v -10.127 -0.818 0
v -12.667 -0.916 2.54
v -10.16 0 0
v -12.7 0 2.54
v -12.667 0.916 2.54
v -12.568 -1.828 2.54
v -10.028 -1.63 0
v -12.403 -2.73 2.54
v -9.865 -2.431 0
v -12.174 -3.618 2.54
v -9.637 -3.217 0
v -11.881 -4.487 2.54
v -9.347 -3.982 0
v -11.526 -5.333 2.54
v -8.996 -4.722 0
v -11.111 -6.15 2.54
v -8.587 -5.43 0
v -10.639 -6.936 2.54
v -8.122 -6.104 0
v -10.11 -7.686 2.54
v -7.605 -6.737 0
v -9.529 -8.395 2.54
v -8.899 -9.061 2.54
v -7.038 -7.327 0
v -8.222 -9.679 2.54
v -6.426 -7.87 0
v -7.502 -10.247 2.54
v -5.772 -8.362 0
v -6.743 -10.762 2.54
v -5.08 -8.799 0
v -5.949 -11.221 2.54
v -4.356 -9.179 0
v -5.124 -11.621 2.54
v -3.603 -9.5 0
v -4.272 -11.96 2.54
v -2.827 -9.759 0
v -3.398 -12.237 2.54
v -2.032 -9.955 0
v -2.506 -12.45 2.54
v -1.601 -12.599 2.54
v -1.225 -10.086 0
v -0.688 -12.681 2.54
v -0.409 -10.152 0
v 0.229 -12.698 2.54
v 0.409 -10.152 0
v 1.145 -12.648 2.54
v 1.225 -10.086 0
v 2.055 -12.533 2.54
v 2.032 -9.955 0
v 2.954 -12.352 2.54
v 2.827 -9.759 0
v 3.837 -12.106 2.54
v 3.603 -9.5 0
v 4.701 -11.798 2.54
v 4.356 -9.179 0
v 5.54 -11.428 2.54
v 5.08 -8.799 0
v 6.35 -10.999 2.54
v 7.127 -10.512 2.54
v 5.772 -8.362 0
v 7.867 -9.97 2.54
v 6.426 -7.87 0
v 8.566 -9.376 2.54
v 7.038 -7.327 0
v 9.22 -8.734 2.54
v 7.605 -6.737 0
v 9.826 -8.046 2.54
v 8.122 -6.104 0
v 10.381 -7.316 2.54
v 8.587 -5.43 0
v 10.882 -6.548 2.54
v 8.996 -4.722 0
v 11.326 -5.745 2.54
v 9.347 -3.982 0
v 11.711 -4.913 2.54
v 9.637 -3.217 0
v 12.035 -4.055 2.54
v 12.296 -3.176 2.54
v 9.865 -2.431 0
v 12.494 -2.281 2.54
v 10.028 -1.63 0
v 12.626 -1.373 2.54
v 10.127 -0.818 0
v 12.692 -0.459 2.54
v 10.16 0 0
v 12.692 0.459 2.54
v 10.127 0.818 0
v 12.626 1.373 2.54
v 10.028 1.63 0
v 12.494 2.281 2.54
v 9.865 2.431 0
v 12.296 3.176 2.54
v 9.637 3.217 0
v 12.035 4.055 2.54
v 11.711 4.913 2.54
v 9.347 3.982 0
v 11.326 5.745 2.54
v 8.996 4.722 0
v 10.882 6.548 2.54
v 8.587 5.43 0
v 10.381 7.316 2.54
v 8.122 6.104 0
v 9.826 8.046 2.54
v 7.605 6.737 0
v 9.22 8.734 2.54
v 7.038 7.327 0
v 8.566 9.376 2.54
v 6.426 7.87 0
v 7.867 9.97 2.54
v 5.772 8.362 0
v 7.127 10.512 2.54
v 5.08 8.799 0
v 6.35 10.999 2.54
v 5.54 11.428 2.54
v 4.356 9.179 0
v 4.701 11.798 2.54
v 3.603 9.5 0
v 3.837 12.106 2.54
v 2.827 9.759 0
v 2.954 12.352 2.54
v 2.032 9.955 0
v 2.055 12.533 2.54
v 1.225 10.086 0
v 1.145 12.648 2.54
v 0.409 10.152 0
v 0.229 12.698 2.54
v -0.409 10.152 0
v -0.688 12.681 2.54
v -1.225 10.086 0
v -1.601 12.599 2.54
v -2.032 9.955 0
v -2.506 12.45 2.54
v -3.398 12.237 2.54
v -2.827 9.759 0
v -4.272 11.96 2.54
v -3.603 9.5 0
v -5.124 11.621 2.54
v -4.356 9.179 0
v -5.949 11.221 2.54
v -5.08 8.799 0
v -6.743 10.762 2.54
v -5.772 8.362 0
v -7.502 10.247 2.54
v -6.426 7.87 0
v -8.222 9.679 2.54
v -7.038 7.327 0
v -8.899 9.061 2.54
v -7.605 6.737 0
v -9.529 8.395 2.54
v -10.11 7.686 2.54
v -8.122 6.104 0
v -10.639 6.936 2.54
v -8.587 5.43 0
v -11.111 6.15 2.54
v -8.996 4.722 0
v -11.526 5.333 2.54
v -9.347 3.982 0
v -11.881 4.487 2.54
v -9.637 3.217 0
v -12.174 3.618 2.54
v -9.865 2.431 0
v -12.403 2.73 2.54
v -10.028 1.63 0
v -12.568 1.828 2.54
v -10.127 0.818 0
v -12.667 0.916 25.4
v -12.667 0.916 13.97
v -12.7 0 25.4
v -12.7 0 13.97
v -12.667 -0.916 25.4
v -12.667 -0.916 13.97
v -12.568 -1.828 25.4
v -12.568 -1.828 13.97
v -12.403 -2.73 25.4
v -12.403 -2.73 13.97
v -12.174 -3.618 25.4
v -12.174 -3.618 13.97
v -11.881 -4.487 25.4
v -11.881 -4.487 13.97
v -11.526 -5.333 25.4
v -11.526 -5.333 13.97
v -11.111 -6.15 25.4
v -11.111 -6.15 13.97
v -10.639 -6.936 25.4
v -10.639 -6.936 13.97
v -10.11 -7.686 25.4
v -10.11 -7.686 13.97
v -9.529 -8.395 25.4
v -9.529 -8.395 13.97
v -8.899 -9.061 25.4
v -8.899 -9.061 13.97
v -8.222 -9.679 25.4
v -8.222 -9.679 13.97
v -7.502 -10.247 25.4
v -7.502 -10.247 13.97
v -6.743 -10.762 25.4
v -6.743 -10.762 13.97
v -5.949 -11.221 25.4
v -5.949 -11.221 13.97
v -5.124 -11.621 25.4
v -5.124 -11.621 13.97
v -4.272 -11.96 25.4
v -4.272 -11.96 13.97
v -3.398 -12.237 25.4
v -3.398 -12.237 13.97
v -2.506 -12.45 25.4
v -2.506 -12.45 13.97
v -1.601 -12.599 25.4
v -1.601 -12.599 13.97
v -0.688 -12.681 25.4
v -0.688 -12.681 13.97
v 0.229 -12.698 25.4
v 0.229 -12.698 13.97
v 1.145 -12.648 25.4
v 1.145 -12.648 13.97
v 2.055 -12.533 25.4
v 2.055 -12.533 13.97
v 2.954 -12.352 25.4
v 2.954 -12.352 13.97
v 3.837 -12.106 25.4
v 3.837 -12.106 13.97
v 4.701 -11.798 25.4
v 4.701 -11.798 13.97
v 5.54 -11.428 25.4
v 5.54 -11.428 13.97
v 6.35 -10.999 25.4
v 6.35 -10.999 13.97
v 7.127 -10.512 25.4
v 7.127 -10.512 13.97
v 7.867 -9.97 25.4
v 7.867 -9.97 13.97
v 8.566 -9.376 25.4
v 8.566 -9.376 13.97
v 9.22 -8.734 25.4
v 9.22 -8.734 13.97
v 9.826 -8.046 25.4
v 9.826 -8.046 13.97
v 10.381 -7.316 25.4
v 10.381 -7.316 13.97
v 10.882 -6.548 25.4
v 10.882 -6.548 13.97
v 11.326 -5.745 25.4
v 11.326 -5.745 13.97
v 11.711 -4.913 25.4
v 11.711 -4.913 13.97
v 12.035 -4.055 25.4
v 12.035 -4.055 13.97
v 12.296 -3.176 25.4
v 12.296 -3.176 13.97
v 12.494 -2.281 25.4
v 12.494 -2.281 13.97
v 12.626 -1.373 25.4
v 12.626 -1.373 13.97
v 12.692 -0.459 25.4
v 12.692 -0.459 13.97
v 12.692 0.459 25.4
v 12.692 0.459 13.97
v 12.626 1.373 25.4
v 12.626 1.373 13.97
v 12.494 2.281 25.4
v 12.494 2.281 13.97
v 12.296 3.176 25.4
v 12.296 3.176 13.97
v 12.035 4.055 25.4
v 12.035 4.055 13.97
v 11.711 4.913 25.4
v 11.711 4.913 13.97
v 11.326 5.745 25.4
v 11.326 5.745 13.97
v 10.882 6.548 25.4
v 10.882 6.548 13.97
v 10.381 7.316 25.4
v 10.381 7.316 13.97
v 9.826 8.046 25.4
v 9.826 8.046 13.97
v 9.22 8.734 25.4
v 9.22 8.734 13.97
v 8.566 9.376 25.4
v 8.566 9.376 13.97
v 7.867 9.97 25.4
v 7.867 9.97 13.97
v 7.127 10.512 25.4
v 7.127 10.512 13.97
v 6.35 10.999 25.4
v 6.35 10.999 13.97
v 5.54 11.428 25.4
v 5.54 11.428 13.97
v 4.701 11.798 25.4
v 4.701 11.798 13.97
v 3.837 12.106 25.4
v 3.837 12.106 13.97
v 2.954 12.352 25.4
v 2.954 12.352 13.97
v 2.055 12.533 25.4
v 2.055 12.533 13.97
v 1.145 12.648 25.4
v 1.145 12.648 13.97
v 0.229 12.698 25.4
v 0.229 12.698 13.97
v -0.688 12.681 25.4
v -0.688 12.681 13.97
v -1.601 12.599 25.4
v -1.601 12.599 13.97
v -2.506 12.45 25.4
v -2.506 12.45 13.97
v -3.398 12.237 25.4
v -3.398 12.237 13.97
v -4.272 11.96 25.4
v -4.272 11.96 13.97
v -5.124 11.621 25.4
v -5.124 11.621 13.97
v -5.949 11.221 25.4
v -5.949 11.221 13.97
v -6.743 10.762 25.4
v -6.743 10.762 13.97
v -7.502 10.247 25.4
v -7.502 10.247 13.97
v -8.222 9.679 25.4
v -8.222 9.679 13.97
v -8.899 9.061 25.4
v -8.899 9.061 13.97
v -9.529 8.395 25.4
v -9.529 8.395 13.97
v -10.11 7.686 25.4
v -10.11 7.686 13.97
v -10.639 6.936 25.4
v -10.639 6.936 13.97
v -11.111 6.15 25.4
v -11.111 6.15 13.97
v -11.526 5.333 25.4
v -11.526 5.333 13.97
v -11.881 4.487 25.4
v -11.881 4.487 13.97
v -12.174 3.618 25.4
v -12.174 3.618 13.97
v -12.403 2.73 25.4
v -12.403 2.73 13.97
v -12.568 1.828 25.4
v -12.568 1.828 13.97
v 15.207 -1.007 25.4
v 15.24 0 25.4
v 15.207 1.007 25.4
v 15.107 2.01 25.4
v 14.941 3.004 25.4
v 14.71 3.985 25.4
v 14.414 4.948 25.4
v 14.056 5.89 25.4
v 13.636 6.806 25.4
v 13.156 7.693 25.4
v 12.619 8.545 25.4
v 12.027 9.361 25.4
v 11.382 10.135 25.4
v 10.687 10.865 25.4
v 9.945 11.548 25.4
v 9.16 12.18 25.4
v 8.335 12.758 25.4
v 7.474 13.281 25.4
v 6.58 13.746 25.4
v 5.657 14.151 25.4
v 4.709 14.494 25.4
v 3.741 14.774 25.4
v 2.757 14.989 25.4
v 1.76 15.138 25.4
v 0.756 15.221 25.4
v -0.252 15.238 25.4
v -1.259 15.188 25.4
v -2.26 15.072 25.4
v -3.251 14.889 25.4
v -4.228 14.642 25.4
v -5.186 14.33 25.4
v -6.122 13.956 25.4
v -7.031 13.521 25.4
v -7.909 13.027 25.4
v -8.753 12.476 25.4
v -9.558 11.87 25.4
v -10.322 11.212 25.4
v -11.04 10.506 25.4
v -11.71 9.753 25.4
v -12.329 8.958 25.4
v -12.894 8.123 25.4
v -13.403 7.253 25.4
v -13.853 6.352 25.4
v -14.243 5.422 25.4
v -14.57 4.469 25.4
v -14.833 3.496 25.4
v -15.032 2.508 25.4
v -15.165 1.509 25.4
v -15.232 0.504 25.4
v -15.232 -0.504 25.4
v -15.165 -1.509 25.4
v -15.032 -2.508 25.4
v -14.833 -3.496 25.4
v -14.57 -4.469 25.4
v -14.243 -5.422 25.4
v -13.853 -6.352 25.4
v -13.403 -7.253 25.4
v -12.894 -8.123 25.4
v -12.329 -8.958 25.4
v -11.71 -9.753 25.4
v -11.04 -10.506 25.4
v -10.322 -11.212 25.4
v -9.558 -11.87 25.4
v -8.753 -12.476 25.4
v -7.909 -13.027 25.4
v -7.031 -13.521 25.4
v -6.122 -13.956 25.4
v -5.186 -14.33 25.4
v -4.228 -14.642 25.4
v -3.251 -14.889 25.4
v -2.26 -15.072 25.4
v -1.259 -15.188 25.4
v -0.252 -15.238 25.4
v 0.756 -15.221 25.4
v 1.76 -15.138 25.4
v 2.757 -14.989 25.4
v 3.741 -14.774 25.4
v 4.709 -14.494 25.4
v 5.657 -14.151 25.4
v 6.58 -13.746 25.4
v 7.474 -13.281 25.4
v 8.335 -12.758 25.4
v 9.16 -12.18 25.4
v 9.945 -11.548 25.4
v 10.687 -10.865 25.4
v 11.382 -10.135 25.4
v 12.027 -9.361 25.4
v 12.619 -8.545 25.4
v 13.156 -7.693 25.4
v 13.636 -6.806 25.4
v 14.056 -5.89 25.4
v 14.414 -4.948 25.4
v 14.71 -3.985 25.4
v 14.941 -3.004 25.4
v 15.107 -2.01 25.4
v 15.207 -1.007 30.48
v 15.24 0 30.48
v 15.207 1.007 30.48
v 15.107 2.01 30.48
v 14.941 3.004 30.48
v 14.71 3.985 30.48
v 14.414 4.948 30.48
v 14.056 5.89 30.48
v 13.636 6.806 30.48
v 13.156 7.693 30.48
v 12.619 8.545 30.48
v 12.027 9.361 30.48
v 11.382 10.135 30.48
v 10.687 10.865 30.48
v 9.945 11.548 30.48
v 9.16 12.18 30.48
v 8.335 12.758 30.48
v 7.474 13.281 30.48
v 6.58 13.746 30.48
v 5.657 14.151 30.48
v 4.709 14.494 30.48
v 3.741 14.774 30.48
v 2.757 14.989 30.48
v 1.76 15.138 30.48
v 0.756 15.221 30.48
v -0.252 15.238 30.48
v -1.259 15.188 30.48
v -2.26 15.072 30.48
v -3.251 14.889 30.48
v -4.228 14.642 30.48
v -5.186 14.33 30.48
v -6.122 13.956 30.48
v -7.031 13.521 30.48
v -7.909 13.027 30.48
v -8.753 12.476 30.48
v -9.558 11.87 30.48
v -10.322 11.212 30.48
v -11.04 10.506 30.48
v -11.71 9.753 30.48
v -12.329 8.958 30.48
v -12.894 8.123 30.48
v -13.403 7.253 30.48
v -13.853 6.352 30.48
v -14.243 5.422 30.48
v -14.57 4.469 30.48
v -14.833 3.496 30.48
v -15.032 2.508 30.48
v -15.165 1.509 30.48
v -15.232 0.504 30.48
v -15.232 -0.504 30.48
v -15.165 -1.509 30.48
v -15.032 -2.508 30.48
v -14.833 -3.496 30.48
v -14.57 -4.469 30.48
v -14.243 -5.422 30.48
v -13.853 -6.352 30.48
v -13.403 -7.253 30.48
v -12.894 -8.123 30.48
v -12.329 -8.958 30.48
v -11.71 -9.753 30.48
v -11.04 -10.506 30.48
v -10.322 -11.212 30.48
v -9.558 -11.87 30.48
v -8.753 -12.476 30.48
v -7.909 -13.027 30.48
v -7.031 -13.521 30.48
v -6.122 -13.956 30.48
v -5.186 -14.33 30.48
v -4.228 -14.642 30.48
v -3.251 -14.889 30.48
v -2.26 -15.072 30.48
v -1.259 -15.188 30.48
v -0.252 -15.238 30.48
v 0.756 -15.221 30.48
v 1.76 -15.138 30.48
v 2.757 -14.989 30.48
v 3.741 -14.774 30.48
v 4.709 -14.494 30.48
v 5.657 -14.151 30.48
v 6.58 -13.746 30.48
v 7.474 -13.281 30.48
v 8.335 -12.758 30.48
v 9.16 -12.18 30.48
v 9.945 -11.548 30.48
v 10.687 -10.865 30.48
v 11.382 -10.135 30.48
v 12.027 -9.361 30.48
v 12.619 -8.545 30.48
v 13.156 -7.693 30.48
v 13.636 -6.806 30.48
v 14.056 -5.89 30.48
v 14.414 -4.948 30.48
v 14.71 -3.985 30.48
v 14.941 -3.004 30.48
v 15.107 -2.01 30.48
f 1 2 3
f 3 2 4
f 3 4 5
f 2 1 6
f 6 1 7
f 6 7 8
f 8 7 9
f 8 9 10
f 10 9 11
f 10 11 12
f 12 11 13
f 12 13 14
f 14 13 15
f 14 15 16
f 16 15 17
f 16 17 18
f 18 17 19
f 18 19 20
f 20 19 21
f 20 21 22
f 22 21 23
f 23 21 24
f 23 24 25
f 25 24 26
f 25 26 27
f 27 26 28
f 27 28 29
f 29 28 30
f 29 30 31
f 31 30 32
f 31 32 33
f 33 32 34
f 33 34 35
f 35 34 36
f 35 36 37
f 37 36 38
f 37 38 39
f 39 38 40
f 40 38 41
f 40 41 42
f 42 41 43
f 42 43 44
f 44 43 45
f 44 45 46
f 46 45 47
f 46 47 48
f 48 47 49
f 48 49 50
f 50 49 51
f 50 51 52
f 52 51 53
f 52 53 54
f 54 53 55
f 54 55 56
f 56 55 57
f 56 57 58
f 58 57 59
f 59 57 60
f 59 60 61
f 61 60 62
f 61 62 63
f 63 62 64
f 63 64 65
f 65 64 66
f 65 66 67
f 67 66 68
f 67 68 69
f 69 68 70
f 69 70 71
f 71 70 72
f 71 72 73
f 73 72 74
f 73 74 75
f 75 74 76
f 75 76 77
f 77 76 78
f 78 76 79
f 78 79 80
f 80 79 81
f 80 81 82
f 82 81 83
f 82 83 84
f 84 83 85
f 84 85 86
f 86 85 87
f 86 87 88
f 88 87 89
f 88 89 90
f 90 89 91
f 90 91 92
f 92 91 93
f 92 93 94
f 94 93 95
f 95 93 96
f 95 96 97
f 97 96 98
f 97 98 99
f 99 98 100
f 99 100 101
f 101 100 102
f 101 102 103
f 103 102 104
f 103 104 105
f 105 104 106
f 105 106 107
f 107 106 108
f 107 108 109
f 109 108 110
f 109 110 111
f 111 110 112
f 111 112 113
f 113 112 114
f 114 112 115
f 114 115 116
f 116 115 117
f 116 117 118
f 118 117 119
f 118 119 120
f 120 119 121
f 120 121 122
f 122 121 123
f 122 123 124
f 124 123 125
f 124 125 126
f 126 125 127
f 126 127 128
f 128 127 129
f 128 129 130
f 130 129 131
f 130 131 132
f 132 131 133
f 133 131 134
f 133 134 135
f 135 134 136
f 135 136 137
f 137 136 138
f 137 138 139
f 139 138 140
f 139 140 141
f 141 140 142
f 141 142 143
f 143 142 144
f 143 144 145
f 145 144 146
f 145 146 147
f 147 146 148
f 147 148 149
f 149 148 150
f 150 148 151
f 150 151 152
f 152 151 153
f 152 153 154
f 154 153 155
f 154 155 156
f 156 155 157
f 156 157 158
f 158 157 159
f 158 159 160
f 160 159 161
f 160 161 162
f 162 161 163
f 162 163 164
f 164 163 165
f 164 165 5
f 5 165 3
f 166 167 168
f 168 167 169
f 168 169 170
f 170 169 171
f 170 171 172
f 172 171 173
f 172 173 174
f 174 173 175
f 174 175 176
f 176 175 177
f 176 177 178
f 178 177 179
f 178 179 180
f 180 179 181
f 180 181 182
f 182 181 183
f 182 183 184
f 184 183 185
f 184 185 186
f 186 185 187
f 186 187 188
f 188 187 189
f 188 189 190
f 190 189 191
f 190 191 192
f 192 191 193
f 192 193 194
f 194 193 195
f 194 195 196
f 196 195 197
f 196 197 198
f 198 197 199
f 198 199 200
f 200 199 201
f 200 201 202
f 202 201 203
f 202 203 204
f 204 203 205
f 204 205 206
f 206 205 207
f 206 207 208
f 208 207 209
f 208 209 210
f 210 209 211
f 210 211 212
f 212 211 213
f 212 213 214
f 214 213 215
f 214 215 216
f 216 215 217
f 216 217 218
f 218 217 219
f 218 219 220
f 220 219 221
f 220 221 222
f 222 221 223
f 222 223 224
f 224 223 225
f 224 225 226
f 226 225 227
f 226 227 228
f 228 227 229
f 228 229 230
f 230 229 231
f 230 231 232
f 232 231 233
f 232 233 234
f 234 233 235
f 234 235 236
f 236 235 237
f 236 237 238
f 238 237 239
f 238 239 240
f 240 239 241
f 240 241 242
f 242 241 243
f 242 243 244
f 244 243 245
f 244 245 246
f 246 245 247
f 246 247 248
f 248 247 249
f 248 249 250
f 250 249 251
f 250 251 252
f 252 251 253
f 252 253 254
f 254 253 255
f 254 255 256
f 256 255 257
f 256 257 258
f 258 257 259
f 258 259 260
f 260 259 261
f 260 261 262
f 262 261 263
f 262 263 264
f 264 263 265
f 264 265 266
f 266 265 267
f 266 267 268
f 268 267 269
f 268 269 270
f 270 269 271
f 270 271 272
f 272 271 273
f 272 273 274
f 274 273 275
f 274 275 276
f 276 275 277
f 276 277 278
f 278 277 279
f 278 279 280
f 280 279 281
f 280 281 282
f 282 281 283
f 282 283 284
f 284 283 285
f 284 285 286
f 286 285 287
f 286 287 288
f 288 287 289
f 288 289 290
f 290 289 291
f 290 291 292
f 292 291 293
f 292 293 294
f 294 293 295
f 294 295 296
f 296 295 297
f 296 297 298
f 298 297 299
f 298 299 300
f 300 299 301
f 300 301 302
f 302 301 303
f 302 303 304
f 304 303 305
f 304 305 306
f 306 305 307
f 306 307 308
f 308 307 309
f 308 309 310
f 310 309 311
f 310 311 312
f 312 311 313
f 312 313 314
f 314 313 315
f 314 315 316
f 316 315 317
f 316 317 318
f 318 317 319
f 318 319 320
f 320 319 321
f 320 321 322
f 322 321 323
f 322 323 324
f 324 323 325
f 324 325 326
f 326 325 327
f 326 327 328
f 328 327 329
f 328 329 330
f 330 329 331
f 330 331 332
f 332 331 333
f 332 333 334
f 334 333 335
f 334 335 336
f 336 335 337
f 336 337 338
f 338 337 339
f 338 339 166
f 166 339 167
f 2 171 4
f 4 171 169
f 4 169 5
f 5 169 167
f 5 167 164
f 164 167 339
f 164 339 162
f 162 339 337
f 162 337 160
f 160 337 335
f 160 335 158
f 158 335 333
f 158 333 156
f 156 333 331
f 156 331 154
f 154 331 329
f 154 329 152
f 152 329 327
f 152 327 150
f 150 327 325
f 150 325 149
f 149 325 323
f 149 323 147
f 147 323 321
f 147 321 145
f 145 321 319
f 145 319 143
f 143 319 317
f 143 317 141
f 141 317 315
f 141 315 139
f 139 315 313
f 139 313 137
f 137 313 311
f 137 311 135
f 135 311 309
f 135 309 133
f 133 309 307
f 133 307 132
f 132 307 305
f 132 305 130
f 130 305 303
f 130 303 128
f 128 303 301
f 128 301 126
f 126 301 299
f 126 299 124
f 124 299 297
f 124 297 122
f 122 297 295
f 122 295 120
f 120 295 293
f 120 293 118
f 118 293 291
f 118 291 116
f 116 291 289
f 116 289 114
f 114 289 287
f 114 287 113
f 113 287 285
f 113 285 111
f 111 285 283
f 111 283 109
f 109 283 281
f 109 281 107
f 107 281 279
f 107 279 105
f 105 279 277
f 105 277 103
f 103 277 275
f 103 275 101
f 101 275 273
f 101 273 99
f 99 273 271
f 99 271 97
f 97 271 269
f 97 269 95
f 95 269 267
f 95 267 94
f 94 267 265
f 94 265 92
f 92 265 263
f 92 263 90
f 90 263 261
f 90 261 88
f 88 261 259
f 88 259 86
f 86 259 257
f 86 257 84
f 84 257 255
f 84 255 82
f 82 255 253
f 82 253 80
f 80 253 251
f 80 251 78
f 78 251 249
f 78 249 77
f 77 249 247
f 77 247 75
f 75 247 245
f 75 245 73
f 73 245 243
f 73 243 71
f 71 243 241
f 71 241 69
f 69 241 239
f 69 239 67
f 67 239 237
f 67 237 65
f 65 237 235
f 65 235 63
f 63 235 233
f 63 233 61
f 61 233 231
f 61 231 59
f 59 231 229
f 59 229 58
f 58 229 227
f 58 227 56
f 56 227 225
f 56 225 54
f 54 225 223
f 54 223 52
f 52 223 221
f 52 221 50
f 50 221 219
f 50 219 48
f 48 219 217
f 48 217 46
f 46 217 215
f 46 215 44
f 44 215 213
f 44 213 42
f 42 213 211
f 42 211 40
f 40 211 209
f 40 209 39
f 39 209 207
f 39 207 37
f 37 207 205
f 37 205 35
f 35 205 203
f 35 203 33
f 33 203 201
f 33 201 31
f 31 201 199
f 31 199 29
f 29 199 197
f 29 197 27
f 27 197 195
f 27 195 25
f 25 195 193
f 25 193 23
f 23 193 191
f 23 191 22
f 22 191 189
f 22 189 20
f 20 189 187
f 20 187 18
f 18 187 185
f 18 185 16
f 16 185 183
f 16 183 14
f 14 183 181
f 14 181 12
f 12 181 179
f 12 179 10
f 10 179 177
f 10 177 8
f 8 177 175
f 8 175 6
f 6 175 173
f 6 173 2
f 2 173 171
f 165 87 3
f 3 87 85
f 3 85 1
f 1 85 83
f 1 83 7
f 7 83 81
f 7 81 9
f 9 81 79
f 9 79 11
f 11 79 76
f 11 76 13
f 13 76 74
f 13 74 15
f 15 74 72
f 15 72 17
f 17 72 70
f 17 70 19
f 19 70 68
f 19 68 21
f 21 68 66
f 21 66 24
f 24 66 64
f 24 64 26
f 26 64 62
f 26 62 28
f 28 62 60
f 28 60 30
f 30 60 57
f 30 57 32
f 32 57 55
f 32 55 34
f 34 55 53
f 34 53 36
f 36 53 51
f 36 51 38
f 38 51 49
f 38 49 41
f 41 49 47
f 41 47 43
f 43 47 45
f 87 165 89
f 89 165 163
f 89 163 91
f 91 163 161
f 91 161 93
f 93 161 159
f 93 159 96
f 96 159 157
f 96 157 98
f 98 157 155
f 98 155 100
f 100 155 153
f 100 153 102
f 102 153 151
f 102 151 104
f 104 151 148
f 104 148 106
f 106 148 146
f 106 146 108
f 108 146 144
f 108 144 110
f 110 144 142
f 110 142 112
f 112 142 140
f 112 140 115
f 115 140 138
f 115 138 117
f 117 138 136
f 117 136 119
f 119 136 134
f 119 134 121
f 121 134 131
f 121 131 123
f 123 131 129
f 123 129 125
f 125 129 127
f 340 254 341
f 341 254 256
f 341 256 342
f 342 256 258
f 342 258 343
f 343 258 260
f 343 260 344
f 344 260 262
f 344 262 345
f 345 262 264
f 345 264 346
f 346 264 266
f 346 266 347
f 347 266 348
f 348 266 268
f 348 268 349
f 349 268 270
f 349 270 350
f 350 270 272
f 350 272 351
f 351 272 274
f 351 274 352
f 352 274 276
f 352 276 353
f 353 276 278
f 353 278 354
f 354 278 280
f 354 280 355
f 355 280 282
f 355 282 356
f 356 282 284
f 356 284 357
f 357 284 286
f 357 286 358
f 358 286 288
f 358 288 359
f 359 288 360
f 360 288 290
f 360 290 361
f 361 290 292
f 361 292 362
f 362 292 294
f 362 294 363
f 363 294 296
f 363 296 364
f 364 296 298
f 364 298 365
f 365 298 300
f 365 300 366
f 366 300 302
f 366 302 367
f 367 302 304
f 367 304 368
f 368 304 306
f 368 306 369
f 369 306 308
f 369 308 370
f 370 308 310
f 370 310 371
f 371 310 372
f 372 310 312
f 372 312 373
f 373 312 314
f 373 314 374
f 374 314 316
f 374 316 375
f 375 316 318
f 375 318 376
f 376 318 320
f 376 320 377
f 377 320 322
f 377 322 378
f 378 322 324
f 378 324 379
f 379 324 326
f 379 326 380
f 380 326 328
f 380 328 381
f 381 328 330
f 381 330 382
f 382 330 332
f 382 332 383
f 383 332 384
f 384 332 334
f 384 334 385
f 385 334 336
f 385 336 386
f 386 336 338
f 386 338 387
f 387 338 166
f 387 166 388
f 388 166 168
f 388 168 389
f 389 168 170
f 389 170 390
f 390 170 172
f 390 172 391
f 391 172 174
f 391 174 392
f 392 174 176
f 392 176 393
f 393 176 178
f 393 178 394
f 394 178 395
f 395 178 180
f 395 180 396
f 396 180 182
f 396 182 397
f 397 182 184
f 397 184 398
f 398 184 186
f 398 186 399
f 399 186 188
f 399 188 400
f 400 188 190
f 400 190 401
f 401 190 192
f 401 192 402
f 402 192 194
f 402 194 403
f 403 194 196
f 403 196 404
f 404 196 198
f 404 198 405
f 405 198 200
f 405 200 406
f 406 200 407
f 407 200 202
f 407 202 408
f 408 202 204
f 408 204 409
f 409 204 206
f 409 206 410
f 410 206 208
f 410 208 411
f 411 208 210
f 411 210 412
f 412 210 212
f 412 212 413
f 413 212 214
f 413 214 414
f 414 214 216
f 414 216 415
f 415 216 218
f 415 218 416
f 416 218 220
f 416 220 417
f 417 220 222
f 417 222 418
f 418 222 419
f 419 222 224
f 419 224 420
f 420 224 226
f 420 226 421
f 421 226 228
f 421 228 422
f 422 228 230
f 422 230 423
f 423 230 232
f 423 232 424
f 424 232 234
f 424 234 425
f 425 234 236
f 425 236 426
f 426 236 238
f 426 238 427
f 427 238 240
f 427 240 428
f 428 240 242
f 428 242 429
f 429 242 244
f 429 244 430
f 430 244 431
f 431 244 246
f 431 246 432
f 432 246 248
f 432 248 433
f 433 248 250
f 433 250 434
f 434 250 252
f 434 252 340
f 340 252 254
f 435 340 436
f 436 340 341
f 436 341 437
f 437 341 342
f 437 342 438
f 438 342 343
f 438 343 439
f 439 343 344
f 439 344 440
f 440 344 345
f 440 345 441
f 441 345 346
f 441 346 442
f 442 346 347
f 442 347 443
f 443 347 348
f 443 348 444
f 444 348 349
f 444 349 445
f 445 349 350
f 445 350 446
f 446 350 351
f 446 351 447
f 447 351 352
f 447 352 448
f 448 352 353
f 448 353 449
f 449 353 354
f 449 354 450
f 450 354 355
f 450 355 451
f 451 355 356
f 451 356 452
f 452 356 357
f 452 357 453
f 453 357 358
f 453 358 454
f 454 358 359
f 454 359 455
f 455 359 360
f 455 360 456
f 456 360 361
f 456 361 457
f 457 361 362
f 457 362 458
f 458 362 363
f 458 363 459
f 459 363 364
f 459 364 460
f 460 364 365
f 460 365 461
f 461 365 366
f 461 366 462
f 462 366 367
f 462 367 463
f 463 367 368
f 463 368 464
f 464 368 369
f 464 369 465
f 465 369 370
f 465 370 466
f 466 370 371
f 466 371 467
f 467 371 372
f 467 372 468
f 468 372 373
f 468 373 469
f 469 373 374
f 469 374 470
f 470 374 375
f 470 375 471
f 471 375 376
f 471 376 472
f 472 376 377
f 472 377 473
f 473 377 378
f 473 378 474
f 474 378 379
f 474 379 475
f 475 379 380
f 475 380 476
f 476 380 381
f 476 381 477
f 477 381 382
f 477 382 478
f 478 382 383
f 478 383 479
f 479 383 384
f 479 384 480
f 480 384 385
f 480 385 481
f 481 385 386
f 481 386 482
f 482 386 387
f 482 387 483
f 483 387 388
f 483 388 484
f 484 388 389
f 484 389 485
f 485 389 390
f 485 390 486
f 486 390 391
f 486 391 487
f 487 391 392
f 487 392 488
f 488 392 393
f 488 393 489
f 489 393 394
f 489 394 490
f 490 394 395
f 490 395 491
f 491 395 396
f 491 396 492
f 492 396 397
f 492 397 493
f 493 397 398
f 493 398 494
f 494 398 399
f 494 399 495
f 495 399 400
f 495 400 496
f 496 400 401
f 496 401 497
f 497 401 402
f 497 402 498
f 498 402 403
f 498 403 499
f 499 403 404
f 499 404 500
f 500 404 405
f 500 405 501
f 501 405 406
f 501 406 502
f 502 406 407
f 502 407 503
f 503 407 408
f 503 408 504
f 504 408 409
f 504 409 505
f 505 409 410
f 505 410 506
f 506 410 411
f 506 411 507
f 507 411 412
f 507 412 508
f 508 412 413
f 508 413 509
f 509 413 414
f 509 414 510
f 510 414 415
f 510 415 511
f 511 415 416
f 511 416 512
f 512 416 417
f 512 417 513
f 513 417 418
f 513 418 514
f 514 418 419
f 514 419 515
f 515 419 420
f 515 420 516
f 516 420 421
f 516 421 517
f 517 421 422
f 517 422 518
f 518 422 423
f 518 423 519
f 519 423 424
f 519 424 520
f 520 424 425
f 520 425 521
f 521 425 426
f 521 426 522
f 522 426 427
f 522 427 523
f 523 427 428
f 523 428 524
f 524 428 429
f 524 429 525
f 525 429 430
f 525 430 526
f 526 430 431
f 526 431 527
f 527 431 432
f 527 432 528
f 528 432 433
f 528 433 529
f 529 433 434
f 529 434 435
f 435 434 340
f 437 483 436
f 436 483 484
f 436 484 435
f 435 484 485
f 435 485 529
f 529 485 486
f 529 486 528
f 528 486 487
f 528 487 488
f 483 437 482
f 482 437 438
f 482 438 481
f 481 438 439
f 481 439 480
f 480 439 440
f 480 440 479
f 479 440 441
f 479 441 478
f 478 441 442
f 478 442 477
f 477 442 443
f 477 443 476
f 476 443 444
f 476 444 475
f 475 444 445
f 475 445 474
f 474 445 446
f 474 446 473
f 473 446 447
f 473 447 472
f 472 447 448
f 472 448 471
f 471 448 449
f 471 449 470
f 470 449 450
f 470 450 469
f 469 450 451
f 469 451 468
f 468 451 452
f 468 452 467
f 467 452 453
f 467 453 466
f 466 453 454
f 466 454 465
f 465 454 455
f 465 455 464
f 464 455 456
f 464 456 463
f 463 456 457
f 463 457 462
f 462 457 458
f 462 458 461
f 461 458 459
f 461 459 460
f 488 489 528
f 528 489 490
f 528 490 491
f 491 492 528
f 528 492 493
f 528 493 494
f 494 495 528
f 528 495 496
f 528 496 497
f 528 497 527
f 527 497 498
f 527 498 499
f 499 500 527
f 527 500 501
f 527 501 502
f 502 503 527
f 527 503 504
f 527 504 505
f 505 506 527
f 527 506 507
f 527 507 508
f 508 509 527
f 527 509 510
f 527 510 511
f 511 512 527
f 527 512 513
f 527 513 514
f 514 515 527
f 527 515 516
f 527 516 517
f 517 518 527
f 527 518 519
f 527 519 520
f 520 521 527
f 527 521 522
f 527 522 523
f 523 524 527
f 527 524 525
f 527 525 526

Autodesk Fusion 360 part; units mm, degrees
sketch "Sketch4" plane through (0, 0, 0) normal (0, 0, 1) x (1, 0, 0)
  circle A0 centre (0, 0) radius 12.7
  dimension "d28" = 25.4
extrude "Extrude4" add sketch "Sketch4" along normal blind 25.4
sketch "Sketch5" plane through (0, 0, 25.4) normal (0, 0, 1) x (-1, 0, 0)
  circle A0 centre (0, 0) radius 12.7
  circle A1 centre (0, 0) radius 15.24
extrude "Extrude5" add sketch "Sketch5" along normal blind 5.08 contours A0 | A1
chamfer "Chamfer2" distance 2.54 angle 45 1 edges at (-11.8406, -4.5925, 0)
